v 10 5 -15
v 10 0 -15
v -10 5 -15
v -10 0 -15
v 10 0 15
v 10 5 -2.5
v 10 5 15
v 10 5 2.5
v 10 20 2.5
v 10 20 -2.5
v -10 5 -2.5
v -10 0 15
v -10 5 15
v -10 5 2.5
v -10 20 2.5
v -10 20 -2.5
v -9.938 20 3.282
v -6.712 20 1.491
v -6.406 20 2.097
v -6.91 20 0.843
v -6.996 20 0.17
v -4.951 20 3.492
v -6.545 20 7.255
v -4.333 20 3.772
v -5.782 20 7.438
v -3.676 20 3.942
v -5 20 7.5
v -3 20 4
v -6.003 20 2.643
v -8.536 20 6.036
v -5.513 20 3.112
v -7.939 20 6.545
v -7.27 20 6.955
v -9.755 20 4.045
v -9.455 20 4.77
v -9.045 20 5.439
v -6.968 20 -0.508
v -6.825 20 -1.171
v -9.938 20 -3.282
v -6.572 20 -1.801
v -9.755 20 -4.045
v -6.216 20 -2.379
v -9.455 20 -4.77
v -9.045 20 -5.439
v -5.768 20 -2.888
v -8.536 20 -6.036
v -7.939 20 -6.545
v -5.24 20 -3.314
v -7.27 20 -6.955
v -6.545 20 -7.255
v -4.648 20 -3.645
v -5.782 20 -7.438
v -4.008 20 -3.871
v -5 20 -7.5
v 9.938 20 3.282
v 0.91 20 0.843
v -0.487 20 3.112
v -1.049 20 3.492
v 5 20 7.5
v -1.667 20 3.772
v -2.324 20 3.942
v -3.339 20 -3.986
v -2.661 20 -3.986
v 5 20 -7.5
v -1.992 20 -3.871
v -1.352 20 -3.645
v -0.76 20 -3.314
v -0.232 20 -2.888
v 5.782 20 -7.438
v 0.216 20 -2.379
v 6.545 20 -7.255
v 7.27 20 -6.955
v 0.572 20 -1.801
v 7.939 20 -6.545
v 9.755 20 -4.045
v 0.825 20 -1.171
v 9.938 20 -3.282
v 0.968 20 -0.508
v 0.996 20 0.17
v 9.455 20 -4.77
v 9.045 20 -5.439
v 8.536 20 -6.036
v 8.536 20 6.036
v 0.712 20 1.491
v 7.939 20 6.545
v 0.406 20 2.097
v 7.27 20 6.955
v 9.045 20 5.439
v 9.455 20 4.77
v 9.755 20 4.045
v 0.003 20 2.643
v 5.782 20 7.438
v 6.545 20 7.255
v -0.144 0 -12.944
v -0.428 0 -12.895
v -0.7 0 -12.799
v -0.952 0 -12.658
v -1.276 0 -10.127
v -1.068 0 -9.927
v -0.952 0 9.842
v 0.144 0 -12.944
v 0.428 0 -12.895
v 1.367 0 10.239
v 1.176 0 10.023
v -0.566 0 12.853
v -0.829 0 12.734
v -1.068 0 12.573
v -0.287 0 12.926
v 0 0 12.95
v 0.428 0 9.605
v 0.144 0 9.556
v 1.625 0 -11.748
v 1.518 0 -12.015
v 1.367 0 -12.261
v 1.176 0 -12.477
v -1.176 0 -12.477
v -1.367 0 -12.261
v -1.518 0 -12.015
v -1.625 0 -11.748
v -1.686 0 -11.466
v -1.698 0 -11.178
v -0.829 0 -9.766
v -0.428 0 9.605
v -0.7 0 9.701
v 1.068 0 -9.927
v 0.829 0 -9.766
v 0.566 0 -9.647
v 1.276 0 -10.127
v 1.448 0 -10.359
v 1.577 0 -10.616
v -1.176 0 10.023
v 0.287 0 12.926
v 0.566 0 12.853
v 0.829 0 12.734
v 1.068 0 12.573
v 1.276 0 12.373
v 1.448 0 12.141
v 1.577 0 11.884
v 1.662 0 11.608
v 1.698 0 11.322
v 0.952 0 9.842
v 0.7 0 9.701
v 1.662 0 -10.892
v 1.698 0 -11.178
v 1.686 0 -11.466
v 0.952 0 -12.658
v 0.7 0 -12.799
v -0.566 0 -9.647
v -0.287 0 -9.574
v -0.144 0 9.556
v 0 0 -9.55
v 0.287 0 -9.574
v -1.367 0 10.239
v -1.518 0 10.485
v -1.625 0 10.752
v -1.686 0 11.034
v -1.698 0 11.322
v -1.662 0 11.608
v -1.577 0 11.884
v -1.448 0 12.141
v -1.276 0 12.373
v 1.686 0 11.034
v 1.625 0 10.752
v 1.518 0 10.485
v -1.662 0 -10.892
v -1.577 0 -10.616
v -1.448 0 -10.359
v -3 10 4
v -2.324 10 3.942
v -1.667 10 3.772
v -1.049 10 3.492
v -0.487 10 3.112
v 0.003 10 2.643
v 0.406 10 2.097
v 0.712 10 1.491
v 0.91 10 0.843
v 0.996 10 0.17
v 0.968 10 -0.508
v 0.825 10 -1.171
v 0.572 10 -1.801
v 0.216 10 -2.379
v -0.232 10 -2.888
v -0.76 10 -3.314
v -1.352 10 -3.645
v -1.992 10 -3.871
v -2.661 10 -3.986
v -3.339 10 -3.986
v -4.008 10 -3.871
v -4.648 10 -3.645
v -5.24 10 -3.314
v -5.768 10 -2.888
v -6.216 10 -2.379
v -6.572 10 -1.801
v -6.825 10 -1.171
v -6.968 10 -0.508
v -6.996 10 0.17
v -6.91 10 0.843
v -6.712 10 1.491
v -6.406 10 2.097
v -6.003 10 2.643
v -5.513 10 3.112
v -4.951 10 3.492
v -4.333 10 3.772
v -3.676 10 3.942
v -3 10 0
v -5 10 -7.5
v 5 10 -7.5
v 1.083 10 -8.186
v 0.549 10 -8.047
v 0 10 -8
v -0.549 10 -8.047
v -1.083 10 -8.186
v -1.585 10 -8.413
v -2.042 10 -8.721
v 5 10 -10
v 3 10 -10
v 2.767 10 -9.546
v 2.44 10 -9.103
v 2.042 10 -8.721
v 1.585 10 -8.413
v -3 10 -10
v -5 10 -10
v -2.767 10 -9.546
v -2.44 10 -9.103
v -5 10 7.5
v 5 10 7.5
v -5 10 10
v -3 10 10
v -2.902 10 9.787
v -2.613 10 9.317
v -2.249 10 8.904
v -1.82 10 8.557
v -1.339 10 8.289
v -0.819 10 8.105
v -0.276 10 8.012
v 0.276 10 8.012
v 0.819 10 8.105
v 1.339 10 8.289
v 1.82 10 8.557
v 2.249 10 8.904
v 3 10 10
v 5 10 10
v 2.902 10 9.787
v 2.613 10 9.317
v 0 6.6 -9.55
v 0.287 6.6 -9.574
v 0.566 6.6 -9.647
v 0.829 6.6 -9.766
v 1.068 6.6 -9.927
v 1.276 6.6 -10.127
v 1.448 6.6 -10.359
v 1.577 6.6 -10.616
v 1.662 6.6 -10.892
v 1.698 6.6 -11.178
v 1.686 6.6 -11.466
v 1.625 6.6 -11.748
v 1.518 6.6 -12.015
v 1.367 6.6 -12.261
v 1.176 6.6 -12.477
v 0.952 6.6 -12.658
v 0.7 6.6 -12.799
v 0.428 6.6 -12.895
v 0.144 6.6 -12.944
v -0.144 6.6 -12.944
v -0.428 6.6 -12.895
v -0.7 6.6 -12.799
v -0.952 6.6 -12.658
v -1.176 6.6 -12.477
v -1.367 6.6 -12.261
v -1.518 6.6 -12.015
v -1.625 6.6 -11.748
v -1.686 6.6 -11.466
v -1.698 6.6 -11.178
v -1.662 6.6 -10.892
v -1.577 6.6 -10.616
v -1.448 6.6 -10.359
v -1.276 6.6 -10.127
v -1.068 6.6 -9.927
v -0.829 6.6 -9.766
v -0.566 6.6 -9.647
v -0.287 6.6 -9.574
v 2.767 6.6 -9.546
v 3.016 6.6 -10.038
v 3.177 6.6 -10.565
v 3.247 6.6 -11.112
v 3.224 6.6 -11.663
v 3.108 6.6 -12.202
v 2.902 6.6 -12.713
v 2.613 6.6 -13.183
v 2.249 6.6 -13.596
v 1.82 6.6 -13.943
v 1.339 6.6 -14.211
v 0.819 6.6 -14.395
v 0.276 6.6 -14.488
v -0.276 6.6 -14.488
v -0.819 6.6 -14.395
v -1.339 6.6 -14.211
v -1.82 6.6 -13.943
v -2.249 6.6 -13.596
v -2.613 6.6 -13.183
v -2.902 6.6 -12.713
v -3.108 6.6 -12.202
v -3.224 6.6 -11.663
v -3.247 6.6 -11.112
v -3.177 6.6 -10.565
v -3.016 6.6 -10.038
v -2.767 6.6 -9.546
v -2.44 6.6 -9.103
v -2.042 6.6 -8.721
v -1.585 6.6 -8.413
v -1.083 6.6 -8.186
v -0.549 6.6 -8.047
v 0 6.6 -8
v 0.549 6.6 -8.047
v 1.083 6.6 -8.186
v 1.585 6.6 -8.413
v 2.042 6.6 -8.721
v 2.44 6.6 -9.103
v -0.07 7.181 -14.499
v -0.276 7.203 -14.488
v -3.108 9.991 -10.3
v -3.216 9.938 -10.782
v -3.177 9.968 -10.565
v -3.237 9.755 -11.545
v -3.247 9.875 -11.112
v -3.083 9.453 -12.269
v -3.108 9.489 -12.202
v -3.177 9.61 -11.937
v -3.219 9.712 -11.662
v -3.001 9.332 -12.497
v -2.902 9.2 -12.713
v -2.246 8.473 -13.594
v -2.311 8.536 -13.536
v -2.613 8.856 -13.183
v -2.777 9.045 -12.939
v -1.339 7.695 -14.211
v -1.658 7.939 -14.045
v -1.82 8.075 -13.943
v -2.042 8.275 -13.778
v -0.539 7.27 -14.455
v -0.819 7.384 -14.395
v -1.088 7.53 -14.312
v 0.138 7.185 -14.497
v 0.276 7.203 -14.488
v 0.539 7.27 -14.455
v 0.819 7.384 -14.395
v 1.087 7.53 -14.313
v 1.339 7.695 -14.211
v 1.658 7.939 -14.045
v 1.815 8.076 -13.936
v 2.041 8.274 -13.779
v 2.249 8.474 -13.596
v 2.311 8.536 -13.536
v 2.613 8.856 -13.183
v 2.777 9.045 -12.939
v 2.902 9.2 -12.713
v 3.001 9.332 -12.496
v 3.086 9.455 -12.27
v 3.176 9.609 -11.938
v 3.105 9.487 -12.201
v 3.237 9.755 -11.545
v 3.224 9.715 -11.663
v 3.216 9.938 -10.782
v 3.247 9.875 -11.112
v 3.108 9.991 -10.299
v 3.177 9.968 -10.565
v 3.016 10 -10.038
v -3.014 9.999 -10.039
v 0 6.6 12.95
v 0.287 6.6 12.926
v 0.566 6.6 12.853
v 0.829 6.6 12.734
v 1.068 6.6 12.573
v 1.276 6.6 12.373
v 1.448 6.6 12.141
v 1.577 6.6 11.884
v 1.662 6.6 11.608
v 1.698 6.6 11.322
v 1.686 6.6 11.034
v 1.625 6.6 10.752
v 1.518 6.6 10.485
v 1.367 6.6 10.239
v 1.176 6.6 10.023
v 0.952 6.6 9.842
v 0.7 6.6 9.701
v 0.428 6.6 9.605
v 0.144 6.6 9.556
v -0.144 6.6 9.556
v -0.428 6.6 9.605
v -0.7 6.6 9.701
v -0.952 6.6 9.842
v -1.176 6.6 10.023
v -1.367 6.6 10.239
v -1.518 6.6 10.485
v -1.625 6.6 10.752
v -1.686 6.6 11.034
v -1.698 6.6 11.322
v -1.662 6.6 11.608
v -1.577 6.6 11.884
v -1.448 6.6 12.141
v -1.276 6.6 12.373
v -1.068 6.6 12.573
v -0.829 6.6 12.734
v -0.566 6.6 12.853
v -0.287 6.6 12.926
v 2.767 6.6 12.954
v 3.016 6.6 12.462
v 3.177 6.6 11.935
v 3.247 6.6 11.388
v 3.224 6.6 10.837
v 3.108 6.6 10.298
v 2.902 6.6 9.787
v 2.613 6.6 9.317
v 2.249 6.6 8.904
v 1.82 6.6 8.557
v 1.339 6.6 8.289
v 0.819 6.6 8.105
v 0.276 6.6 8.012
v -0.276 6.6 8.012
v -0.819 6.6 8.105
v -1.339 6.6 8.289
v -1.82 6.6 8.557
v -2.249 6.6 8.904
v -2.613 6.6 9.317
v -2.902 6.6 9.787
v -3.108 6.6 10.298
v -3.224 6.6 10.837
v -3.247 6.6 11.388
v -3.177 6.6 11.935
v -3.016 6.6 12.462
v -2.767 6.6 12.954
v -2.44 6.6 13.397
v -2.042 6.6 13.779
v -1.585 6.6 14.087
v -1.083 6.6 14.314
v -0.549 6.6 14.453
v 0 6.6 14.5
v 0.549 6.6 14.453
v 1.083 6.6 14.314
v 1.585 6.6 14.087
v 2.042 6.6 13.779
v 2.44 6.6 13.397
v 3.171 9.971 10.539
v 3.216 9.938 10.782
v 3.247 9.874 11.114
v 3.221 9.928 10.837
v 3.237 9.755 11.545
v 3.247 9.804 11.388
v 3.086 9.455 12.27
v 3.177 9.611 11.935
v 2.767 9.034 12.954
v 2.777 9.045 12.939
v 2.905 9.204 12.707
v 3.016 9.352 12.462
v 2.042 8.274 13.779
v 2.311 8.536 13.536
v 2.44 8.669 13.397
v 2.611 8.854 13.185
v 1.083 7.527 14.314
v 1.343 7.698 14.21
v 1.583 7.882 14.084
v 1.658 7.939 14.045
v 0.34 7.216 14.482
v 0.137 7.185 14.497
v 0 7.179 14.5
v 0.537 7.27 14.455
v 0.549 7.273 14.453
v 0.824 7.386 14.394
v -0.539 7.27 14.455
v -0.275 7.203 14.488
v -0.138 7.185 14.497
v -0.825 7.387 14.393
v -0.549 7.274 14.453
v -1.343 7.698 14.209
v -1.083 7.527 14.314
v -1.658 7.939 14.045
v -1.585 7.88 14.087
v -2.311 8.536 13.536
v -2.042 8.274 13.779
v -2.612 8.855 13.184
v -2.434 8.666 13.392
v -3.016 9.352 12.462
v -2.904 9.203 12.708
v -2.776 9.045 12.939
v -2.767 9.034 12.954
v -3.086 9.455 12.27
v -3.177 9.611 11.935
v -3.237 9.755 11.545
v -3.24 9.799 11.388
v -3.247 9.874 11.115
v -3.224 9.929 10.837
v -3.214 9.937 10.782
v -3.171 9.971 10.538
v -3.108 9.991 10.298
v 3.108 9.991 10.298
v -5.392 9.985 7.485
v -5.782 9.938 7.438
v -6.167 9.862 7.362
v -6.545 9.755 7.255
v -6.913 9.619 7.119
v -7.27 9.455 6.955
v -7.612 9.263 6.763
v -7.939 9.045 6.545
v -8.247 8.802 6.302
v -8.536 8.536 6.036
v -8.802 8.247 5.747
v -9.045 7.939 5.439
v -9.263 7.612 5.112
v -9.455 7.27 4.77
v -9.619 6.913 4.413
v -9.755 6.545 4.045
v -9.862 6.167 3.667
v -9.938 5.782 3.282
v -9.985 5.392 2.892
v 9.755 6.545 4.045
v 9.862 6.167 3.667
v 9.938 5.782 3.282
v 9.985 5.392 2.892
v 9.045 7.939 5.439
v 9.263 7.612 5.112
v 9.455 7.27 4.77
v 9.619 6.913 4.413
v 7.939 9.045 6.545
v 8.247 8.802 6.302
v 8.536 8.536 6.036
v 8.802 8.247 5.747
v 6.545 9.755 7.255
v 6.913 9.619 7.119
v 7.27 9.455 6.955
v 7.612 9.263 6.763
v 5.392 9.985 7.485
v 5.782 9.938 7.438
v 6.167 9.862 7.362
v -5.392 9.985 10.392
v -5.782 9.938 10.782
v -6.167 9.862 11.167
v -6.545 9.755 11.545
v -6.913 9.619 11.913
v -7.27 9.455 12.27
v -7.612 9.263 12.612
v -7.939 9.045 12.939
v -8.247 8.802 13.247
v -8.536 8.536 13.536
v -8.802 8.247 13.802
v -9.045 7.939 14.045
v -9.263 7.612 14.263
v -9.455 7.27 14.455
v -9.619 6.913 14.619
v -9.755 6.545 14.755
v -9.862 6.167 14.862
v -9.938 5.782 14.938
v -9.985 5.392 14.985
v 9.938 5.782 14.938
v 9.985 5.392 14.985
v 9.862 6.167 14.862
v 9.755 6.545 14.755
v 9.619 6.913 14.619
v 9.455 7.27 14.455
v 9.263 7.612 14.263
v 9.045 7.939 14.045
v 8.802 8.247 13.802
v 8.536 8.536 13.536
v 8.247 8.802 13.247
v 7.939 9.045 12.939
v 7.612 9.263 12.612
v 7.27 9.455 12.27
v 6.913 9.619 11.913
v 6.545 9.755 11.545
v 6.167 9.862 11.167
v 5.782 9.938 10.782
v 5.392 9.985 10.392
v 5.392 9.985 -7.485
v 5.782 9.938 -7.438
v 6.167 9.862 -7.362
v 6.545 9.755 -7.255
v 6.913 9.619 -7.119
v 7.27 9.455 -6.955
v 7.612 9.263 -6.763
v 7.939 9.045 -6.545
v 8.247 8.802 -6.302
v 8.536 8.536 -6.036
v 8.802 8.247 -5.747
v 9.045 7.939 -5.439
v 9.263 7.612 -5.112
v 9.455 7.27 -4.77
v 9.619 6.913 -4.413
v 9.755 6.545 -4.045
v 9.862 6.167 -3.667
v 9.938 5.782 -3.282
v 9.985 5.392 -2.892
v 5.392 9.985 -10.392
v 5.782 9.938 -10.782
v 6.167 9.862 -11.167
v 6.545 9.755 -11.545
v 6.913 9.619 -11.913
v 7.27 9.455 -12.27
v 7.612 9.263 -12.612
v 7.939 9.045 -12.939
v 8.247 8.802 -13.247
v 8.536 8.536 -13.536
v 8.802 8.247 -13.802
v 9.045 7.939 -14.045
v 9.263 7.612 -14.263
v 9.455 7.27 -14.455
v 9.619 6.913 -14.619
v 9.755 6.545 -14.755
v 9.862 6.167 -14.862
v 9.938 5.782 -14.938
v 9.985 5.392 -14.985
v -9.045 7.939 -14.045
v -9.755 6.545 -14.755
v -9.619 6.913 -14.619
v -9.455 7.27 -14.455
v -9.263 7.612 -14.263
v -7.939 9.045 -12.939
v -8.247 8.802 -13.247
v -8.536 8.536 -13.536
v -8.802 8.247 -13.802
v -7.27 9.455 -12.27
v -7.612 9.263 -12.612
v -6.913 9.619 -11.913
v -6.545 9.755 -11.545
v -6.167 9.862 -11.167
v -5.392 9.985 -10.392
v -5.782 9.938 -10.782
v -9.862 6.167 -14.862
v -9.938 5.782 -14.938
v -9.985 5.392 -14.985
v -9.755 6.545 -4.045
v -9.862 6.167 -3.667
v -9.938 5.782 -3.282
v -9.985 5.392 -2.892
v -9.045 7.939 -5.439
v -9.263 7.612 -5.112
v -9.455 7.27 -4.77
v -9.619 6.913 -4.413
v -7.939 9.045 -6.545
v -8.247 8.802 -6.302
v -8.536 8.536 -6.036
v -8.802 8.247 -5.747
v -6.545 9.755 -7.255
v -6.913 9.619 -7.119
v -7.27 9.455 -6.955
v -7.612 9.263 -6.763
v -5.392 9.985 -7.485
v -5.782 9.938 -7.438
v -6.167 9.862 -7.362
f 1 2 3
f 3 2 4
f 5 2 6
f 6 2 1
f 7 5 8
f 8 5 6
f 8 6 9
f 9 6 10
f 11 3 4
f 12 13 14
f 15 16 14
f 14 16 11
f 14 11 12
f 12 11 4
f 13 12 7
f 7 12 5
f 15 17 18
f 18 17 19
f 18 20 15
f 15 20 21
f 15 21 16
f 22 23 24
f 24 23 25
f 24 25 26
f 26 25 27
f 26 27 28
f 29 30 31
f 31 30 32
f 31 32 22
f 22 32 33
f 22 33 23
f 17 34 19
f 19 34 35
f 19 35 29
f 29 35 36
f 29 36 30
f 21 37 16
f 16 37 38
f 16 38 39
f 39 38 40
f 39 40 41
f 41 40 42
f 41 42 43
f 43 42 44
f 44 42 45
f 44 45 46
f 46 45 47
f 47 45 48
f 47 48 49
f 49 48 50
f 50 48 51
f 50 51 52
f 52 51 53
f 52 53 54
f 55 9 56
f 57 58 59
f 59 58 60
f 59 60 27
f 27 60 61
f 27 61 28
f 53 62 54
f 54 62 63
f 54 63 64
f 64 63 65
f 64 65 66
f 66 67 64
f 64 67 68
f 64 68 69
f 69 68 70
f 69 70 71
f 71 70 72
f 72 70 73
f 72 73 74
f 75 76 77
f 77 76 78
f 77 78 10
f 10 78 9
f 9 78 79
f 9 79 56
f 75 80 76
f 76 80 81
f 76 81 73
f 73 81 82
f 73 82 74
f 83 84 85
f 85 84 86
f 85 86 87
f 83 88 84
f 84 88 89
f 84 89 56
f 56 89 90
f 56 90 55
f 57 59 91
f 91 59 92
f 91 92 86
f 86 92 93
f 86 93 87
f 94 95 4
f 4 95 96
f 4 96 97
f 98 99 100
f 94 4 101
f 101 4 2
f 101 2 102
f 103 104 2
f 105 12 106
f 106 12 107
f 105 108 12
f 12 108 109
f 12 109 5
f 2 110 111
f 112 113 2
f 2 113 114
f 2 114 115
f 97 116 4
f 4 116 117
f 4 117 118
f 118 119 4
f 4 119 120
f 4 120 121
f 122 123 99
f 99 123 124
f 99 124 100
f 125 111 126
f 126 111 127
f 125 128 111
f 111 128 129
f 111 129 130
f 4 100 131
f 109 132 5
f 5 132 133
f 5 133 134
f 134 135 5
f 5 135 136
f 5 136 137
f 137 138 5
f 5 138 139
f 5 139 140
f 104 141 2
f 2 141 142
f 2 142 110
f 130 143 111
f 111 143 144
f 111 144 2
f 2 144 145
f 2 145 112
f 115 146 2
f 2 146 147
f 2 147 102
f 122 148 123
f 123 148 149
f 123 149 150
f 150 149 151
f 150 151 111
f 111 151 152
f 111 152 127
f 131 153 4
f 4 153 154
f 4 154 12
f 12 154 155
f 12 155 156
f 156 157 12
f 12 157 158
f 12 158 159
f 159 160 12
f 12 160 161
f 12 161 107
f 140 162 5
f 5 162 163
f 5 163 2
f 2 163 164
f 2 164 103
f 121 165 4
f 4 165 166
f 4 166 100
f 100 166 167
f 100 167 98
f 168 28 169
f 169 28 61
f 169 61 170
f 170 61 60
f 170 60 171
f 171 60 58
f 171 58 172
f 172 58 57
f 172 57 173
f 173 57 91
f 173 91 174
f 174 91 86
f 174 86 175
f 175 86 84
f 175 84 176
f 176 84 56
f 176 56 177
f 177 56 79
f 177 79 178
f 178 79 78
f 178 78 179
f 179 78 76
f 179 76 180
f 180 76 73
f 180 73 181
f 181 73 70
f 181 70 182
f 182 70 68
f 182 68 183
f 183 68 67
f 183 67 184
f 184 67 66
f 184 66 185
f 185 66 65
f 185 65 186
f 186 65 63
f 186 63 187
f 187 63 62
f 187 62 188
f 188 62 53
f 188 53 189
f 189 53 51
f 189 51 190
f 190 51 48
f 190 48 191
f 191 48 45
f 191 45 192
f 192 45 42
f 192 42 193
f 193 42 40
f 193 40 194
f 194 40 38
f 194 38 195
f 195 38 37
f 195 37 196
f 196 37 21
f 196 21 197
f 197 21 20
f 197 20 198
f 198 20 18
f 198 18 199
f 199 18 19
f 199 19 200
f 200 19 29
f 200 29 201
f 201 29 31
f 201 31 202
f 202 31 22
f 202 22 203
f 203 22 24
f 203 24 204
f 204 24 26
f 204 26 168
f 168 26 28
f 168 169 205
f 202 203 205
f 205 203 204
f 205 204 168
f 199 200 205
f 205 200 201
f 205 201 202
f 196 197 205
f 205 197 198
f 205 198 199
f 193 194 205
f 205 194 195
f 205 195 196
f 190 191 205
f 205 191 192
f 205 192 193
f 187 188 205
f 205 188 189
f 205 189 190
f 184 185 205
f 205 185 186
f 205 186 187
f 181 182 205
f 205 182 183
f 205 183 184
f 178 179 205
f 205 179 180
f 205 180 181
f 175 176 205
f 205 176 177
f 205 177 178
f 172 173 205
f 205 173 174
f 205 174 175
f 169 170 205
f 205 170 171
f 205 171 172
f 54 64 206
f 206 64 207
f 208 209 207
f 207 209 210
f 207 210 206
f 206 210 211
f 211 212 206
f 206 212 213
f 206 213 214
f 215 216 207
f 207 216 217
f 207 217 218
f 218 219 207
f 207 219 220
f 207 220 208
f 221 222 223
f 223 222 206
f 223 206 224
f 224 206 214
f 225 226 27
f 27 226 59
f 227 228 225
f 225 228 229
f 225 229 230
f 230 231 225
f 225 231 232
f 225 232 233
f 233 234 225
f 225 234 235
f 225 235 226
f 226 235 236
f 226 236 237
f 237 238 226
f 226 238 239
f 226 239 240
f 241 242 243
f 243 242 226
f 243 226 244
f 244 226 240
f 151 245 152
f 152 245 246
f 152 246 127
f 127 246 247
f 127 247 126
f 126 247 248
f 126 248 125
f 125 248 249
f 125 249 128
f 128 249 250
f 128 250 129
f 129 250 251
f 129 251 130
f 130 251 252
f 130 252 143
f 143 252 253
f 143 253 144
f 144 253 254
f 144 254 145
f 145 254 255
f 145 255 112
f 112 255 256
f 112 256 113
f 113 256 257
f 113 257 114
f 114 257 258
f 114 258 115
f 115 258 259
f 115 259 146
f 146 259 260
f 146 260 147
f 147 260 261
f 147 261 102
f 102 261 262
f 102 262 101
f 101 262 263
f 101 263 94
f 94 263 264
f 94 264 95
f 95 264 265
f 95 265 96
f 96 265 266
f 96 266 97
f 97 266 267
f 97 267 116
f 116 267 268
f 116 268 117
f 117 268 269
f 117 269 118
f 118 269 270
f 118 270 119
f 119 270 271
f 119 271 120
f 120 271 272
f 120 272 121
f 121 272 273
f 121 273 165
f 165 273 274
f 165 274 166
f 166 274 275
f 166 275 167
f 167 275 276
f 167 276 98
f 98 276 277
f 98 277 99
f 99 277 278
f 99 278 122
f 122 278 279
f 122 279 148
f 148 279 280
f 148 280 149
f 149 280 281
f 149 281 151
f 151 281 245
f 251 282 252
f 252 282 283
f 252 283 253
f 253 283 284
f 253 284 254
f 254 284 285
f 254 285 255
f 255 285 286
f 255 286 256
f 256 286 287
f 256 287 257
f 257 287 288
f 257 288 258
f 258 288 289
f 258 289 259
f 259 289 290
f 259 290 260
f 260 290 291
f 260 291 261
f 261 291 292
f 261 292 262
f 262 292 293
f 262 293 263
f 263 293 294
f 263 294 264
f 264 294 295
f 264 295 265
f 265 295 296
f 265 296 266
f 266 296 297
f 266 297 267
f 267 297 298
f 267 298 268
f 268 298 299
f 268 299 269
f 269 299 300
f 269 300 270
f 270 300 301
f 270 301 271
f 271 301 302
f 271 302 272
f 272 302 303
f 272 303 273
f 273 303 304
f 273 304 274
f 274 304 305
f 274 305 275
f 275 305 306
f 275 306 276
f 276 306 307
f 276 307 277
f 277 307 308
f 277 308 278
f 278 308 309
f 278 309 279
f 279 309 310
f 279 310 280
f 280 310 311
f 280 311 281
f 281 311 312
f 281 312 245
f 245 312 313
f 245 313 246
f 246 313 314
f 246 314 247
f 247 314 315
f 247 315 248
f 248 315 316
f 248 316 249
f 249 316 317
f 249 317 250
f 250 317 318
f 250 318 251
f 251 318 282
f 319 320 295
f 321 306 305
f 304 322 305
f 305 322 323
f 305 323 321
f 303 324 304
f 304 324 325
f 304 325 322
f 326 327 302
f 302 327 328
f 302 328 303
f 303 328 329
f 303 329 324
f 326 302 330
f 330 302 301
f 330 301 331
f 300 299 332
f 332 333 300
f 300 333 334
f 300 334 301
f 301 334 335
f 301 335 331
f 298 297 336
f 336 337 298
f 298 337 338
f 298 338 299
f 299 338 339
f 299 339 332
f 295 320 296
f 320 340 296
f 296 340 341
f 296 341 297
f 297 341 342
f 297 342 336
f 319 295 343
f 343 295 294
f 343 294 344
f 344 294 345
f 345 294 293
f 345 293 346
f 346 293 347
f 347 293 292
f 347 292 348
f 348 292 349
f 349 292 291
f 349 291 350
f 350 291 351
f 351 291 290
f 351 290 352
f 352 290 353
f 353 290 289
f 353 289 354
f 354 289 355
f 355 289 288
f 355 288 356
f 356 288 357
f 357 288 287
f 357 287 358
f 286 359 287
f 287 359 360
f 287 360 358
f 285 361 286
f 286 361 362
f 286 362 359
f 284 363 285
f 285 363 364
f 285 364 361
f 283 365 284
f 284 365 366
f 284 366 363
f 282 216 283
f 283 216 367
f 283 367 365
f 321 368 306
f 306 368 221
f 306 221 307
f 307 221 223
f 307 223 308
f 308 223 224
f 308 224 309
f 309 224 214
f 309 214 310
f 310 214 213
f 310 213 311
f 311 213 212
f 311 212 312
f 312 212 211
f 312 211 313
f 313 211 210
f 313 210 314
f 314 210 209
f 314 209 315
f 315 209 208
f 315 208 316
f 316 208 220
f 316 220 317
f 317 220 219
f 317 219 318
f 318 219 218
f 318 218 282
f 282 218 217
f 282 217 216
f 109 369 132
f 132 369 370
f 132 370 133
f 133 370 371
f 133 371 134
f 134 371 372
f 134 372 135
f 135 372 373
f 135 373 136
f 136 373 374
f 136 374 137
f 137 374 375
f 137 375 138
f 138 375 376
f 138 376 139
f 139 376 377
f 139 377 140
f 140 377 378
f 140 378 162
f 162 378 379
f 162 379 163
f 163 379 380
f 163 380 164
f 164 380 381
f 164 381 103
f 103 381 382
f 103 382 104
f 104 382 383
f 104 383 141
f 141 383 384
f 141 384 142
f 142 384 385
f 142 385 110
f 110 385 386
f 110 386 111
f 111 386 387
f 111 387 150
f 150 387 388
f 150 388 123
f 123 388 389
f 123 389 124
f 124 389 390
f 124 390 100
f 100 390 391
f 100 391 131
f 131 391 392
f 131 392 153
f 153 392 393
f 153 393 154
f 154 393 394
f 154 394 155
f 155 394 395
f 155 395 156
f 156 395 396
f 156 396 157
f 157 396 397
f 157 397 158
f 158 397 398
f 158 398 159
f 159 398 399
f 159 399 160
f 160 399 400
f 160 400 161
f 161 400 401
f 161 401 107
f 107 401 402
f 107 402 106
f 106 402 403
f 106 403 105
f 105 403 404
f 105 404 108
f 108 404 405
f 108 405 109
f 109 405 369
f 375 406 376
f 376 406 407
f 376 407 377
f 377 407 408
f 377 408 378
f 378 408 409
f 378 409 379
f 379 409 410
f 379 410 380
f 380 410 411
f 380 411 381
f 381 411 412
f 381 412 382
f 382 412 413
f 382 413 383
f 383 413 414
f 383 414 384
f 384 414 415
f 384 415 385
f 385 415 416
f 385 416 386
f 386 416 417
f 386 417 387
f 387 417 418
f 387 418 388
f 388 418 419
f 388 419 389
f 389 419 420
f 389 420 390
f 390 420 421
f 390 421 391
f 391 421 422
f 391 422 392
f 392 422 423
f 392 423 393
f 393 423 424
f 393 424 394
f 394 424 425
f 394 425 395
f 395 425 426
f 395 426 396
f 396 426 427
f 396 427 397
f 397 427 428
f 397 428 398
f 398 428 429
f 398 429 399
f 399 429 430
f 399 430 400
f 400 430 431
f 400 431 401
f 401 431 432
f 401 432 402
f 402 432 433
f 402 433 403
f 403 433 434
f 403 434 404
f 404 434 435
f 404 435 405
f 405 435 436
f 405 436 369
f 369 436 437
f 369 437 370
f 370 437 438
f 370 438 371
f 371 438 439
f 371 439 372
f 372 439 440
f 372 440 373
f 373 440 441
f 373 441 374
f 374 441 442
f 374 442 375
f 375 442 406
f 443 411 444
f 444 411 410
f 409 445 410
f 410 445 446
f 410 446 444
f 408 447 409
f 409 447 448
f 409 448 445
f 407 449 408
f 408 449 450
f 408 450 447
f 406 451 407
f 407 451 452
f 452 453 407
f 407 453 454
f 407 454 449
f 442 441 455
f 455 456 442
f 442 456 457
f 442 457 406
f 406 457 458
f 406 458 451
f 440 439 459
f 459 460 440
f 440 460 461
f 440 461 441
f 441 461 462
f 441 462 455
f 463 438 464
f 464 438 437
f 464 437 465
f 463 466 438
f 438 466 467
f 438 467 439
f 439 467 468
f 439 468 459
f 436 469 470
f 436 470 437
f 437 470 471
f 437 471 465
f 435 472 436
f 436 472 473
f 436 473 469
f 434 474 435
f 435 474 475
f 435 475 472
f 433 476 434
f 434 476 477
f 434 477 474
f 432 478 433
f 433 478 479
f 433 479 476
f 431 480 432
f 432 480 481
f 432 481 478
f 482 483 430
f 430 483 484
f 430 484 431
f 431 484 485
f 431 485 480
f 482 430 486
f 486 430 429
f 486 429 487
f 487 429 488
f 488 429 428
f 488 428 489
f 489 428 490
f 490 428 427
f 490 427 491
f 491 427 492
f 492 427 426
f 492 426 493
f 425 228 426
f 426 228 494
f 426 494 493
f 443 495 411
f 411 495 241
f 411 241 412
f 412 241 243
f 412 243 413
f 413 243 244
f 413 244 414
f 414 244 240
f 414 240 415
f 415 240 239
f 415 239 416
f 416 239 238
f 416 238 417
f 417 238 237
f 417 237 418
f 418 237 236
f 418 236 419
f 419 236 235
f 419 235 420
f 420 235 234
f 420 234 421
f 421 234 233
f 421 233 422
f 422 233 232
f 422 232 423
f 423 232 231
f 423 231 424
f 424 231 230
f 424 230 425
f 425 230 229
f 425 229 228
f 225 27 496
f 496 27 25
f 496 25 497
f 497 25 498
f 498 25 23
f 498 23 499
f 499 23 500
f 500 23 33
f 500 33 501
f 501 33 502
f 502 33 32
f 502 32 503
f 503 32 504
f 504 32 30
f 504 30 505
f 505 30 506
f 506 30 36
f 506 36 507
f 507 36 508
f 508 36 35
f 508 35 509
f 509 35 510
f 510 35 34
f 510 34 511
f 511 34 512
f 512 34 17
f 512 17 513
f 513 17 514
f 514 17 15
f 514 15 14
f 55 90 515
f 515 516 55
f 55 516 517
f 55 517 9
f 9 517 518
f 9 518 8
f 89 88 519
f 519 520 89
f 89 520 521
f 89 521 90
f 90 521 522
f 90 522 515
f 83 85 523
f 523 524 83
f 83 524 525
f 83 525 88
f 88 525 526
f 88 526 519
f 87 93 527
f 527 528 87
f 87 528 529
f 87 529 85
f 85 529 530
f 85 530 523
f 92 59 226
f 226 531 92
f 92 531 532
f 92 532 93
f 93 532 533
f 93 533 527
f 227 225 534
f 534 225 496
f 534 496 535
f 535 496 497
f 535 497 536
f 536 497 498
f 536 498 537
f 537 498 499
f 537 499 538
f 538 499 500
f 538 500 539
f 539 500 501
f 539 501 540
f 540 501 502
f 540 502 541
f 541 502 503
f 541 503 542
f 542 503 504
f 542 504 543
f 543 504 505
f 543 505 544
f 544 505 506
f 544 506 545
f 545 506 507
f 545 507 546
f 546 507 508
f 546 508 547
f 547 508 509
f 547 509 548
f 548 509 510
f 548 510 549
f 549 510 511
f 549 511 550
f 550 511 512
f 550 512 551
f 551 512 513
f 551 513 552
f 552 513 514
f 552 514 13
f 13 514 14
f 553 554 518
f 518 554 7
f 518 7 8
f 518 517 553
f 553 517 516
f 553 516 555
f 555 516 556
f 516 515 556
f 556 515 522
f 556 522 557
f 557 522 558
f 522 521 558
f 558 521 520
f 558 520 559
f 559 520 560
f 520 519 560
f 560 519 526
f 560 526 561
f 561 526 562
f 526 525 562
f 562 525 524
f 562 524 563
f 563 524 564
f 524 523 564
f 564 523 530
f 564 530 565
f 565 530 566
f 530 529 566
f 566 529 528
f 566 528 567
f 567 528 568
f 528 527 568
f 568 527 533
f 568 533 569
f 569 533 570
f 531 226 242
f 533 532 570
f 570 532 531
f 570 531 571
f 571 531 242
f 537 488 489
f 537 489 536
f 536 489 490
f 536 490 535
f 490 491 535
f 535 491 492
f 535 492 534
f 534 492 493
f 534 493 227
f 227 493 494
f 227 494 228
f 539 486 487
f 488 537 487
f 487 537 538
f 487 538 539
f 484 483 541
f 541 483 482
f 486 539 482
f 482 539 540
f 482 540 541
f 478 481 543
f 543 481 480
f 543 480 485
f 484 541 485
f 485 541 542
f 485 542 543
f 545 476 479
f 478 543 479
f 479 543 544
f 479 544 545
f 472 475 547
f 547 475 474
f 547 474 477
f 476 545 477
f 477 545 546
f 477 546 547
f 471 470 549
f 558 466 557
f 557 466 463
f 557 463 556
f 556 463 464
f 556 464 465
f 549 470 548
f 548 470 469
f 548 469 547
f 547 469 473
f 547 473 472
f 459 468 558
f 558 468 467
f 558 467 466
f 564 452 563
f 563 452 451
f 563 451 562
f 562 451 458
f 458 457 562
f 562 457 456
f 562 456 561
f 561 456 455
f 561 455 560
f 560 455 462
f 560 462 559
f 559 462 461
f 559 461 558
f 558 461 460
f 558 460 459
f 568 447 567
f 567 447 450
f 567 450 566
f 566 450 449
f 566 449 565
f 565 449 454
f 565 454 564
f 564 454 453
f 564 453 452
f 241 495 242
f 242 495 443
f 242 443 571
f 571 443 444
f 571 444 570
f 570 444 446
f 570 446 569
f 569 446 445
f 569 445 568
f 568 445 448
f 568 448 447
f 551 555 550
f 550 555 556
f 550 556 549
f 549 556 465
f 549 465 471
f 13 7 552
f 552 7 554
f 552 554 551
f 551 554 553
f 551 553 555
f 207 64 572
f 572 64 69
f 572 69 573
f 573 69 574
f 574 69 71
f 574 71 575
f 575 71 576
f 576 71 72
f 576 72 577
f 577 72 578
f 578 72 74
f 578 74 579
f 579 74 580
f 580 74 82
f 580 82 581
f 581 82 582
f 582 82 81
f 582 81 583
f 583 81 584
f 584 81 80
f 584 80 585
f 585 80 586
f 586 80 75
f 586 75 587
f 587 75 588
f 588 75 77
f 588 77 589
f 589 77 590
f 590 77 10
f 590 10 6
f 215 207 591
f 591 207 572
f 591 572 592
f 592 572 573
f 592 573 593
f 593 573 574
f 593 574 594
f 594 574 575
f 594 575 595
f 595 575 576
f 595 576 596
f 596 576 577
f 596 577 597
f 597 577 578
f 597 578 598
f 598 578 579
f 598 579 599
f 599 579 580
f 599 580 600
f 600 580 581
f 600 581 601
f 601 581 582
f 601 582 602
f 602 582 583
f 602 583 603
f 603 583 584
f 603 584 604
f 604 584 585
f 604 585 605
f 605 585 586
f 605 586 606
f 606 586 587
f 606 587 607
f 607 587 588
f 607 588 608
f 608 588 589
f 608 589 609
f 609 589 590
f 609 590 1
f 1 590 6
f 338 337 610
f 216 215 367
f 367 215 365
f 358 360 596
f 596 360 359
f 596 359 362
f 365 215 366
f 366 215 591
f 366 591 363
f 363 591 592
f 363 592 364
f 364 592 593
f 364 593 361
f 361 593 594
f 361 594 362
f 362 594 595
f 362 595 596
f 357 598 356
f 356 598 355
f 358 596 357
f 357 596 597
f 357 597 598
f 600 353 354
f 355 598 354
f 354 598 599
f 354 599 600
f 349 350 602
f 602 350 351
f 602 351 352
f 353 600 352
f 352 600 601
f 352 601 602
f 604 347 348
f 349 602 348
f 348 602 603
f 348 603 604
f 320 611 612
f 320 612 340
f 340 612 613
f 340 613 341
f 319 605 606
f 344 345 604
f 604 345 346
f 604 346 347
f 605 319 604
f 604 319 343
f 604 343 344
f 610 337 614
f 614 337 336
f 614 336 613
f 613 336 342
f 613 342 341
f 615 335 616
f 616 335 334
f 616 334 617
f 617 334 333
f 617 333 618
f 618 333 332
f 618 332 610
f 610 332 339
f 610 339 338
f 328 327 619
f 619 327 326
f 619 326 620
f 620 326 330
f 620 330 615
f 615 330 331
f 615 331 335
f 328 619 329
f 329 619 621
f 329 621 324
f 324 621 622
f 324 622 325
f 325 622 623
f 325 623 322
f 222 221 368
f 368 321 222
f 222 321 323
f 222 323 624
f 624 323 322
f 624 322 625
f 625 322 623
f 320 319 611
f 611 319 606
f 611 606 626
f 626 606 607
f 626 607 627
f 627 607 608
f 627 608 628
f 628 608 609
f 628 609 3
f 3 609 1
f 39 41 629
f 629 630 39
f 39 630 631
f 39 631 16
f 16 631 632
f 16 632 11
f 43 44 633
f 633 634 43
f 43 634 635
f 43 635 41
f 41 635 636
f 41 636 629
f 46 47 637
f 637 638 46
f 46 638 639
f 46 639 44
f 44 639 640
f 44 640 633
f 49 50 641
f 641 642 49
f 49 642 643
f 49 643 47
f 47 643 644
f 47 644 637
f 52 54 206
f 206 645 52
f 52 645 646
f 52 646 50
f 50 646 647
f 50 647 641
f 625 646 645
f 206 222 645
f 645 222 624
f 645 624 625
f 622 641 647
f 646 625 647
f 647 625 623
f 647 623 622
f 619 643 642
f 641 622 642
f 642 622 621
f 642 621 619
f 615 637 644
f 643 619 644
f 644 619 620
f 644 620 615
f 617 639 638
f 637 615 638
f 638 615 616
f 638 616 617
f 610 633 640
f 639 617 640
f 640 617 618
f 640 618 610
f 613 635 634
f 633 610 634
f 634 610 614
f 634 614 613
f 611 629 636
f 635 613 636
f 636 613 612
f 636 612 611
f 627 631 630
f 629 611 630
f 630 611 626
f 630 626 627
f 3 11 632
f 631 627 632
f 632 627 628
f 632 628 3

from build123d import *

# Parameters (mm, degrees)
SKETCH1_W                                           = 20
SKETCH1_H                                           = 30
BOSS_EXTRUDE1_DEPTH                                 = 20
SKETCH2_R                                           = 4
CUT_EXTRUDE1_DEPTH                                  = 10
SKETCH3_W                                           = 20
SKETCH3_H                                           = 7.5
CUT_EXTRUDE2_DEPTH                                  = 10
CBORE_FOR_M3_HEX_SOCKET_HEAD_CAP_SCREW1_D           = 3.4
CBORE_FOR_M3_HEX_SOCKET_HEAD_CAP_SCREW1_CBORE_D     = 6.5
CBORE_FOR_M3_HEX_SOCKET_HEAD_CAP_SCREW1_CBORE_DEPTH = 3.4
FILLET2_R                                           = 5


with BuildPart() as part:
    # Sketch1 → Boss-Extrude1 (new body)
    with BuildSketch(Plane(origin=(0, 0, 0), x_dir=(1, 0, 0), z_dir=(0, 1, 0))):
        Rectangle(SKETCH1_W, SKETCH1_H)
    extrude(amount=BOSS_EXTRUDE1_DEPTH)

    # Sketch2 → Cut-Extrude1 (cut)
    with BuildSketch(Plane(origin=(0, 20, 0), x_dir=(1, 0, 0), z_dir=(0, 1, 0))):
        with Locations(Location((-3, 0, 0), (0, 0, 270))):
            Circle(SKETCH2_R)
    extrude(amount=-CUT_EXTRUDE1_DEPTH, mode=Mode.SUBTRACT)

    # Sketch3 → Cut-Extrude2 (cut)
    with BuildSketch(Plane(origin=(0, 20, 0), x_dir=(1, 0, 0), z_dir=(0, 1, 0))):
        with Locations((0, -11.25)):
            Rectangle(SKETCH3_W, SKETCH3_H)
        with Locations((0, 11.25)):
            Rectangle(SKETCH3_W, SKETCH3_H)
    extrude(amount=-CUT_EXTRUDE2_DEPTH, mode=Mode.SUBTRACT)

    # CBORE for M3 Hex Socket Head Cap Screw1 (through all)
    with Locations(Plane(origin=(0, 10, 0), x_dir=(1, 0, 0), z_dir=(0, 1, 0))):
        with Locations((0, -11.25), (0, 11.25)):
            CounterBoreHole(CBORE_FOR_M3_HEX_SOCKET_HEAD_CAP_SCREW1_D / 2, CBORE_FOR_M3_HEX_SOCKET_HEAD_CAP_SCREW1_CBORE_D / 2, CBORE_FOR_M3_HEX_SOCKET_HEAD_CAP_SCREW1_CBORE_DEPTH)

    # Fillet2
    # the kernel refuses this fillet: 5 mm, written as the material it takes off along each edge
    with BuildSketch(Plane(origin=(-10, 10, 7.5), x_dir=(1, 0, 0), z_dir=(0, 0, 1)), Plane(origin=(-10, 10, -7.5), x_dir=(0, -1, 0), z_dir=(0, 0, -1)), Plane(origin=(10, 10, -15), x_dir=(0, -1, 0), z_dir=(0, 0, 1))) as fillet2_piece_1:
        with BuildLine():
            CenterArc((FILLET2_R, -FILLET2_R), FILLET2_R, 90, 90)
            Line((0, -FILLET2_R), (-FILLET2_R * 0.02, -FILLET2_R))
            Line((-FILLET2_R * 0.02, -FILLET2_R), (-FILLET2_R * 0.02, FILLET2_R * 0.02))
            Line((-FILLET2_R * 0.02, FILLET2_R * 0.02), (FILLET2_R, FILLET2_R * 0.02))
            Line((FILLET2_R, FILLET2_R * 0.02), (FILLET2_R, 0))
        make_face()
    extrude(amount=7.5, mode=Mode.SUBTRACT)
    with BuildSketch(Plane(origin=(-10, 20, 7.5), x_dir=(0, 0, -1), z_dir=(0, -1, 0)), Plane(origin=(10, 20, -7.5), x_dir=(0, 0, 1), z_dir=(0, -1, 0))) as fillet2_piece_2:
        with BuildLine():
            CenterArc((FILLET2_R, FILLET2_R), FILLET2_R, 180, 90)
            Line((0, FILLET2_R), (-FILLET2_R * 0.02, FILLET2_R))
            Line((-FILLET2_R * 0.02, FILLET2_R), (-FILLET2_R * 0.02, -FILLET2_R * 0.02))
            Line((-FILLET2_R * 0.02, -FILLET2_R * 0.02), (FILLET2_R, -FILLET2_R * 0.02))
            Line((FILLET2_R, -FILLET2_R * 0.02), (FILLET2_R, 0))
        make_face()
    extrude(amount=10, mode=Mode.SUBTRACT)
    with BuildSketch(Plane(origin=(10, 10, 15), x_dir=(0, -1, 0), z_dir=(0, 0, -1))) as fillet2_piece_3:
        with BuildLine():
            CenterArc((FILLET2_R, FILLET2_R), FILLET2_R, 180, 90)
            Line((0, FILLET2_R), (-FILLET2_R * 0.02, FILLET2_R))
            Line((-FILLET2_R * 0.02, FILLET2_R), (-FILLET2_R * 0.02, -FILLET2_R * 0.02))
            Line((-FILLET2_R * 0.02, -FILLET2_R * 0.02), (FILLET2_R, -FILLET2_R * 0.02))
            Line((FILLET2_R, -FILLET2_R * 0.02), (FILLET2_R, 0))
        make_face()
    extrude(amount=7.5, mode=Mode.SUBTRACT)
    with BuildSketch(Plane(origin=(10, 20, 7.5), x_dir=(0, 0, -1), z_dir=(0, -1, 0)), Plane(origin=(-10, 20, -7.5), x_dir=(0, 0, 1), z_dir=(0, -1, 0))) as fillet2_piece_4:
        with BuildLine():
            CenterArc((FILLET2_R, -FILLET2_R), FILLET2_R, 90, 90)
            Line((0, -FILLET2_R), (-FILLET2_R * 0.02, -FILLET2_R))
            Line((-FILLET2_R * 0.02, -FILLET2_R), (-FILLET2_R * 0.02, FILLET2_R * 0.02))
            Line((-FILLET2_R * 0.02, FILLET2_R * 0.02), (FILLET2_R, FILLET2_R * 0.02))
            Line((FILLET2_R, FILLET2_R * 0.02), (FILLET2_R, 0))
        make_face()
    extrude(amount=10, mode=Mode.SUBTRACT)
    with BuildSketch(Plane(origin=(-10, 10, 15), x_dir=(0, -1, 0), z_dir=(1, 0, 0))) as fillet2_piece_5:
        with BuildLine():
            CenterArc((FILLET2_R, FILLET2_R), FILLET2_R, 180, 90)
            Line((0, FILLET2_R), (-FILLET2_R * 0.02, FILLET2_R))
            Line((-FILLET2_R * 0.02, FILLET2_R), (-FILLET2_R * 0.02, -FILLET2_R * 0.02))
            Line((-FILLET2_R * 0.02, -FILLET2_R * 0.02), (FILLET2_R, -FILLET2_R * 0.02))
            Line((FILLET2_R, -FILLET2_R * 0.02), (FILLET2_R, 0))
        make_face()
    extrude(amount=20, mode=Mode.SUBTRACT)
    with BuildSketch(Plane(origin=(-10, 10, -15), x_dir=(0, -1, 0), z_dir=(1, 0, 0))) as fillet2_piece_6:
        with BuildLine():
            CenterArc((FILLET2_R, -FILLET2_R), FILLET2_R, 90, 90)
            Line((0, -FILLET2_R), (-FILLET2_R * 0.02, -FILLET2_R))
            Line((-FILLET2_R * 0.02, -FILLET2_R), (-FILLET2_R * 0.02, FILLET2_R * 0.02))
            Line((-FILLET2_R * 0.02, FILLET2_R * 0.02), (FILLET2_R, FILLET2_R * 0.02))
            Line((FILLET2_R, FILLET2_R * 0.02), (FILLET2_R, 0))
        make_face()
    extrude(amount=20, mode=Mode.SUBTRACT)
    with BuildSketch(Plane(origin=(-10, 10, -5), x_dir=(1, 0, 0), z_dir=(0, 0, 1))) as fillet2_piece_7a_section:
        with BuildLine():
            CenterArc((FILLET2_R, -FILLET2_R), FILLET2_R, 90, 90)
            Line((0, -FILLET2_R), (-FILLET2_R * 0.02, -FILLET2_R))
            Line((-FILLET2_R * 0.02, -FILLET2_R), (-FILLET2_R * 0.02, FILLET2_R * 0.02))
            Line((-FILLET2_R * 0.02, FILLET2_R * 0.02), (FILLET2_R, FILLET2_R * 0.02))
            Line((FILLET2_R, FILLET2_R * 0.02), (FILLET2_R, 0))
        make_face()
    fillet2_piece_7a = extrude(amount=20, mode=Mode.PRIVATE)
    fillet2_piece_7a = split(fillet2_piece_7a, bisect_by=Plane(origin=(-8.868024429, 8.868024429, 7.5), z_dir=(0, 0, -1)), keep=Keep.TOP, mode=Mode.PRIVATE)
    with BuildSketch(Plane(origin=(-10, 20, 7.5), x_dir=(0, 0, -1), z_dir=(0, -1, 0))) as fillet2_piece_7b_section:
        with BuildLine():
            CenterArc((FILLET2_R, FILLET2_R), FILLET2_R, 180, 90)
            Line((0, FILLET2_R), (-FILLET2_R * 0.02, FILLET2_R))
            Line((-FILLET2_R * 0.02, FILLET2_R), (-FILLET2_R * 0.02, -FILLET2_R * 0.02))
            Line((-FILLET2_R * 0.02, -FILLET2_R * 0.02), (FILLET2_R, -FILLET2_R * 0.02))
            Line((FILLET2_R, -FILLET2_R * 0.02), (FILLET2_R, 0))
        make_face()
    fillet2_piece_7b = extrude(amount=22.5, mode=Mode.PRIVATE)
    fillet2_piece_7b = split(fillet2_piece_7b, bisect_by=Plane(origin=(-8.868024429, 10, 6.368024429), z_dir=(0, -1, 0)), keep=Keep.TOP, mode=Mode.PRIVATE)
    fillet2_piece_7 = fillet2_piece_7a & fillet2_piece_7b
    add(fillet2_piece_7, mode=Mode.SUBTRACT)
    with BuildSketch(Plane(origin=(-22.5, 10, 15), x_dir=(0, -1, 0), z_dir=(1, 0, 0))) as fillet2_piece_8a_section:
        with BuildLine():
            CenterArc((FILLET2_R, FILLET2_R), FILLET2_R, 180, 90)
            Line((0, FILLET2_R), (-FILLET2_R * 0.02, FILLET2_R))
            Line((-FILLET2_R * 0.02, FILLET2_R), (-FILLET2_R * 0.02, -FILLET2_R * 0.02))
            Line((-FILLET2_R * 0.02, -FILLET2_R * 0.02), (FILLET2_R, -FILLET2_R * 0.02))
            Line((FILLET2_R, -FILLET2_R * 0.02), (FILLET2_R, 0))
        make_face()
    fillet2_piece_8a = extrude(amount=32.5, mode=Mode.PRIVATE)
    fillet2_piece_8a = split(fillet2_piece_8a, bisect_by=Plane(origin=(-10, 8.868024429, 13.868024429), z_dir=(-1, 0, 0)), keep=Keep.TOP, mode=Mode.PRIVATE)
    with BuildSketch(Plane(origin=(-10, 10, 7.5), x_dir=(1, 0, 0), z_dir=(0, 0, 1))) as fillet2_piece_8b_section:
        with BuildLine():
            CenterArc((FILLET2_R, -FILLET2_R), FILLET2_R, 90, 90)
            Line((0, -FILLET2_R), (-FILLET2_R * 0.02, -FILLET2_R))
            Line((-FILLET2_R * 0.02, -FILLET2_R), (-FILLET2_R * 0.02, FILLET2_R * 0.02))
            Line((-FILLET2_R * 0.02, FILLET2_R * 0.02), (FILLET2_R, FILLET2_R * 0.02))
            Line((FILLET2_R, FILLET2_R * 0.02), (FILLET2_R, 0))
        make_face()
    fillet2_piece_8b = extrude(amount=20, mode=Mode.PRIVATE)
    fillet2_piece_8b = split(fillet2_piece_8b, bisect_by=Plane(origin=(-8.868024429, 8.868024429, 15), z_dir=(0, 0, 1)), keep=Keep.TOP, mode=Mode.PRIVATE)
    fillet2_piece_8 = fillet2_piece_8a & fillet2_piece_8b
    add(fillet2_piece_8, mode=Mode.SUBTRACT)
    with BuildSketch(Plane(origin=(-10, 10, 15), x_dir=(0, -1, 0), z_dir=(1, 0, 0))) as fillet2_piece_9a_section:
        with BuildLine():
            CenterArc((FILLET2_R, FILLET2_R), FILLET2_R, 180, 90)
            Line((0, FILLET2_R), (-FILLET2_R * 0.02, FILLET2_R))
            Line((-FILLET2_R * 0.02, FILLET2_R), (-FILLET2_R * 0.02, -FILLET2_R * 0.02))
            Line((-FILLET2_R * 0.02, -FILLET2_R * 0.02), (FILLET2_R, -FILLET2_R * 0.02))
            Line((FILLET2_R, -FILLET2_R * 0.02), (FILLET2_R, 0))
        make_face()
    fillet2_piece_9a = extrude(amount=32.5, mode=Mode.PRIVATE)
    fillet2_piece_9a = split(fillet2_piece_9a, bisect_by=Plane(origin=(10, 8.868024429, 13.868024429), z_dir=(1, 0, 0)), keep=Keep.TOP, mode=Mode.PRIVATE)
    with BuildSketch(Plane(origin=(10, 10, 27.5), x_dir=(0, -1, 0), z_dir=(0, 0, -1))) as fillet2_piece_9b_section:
        with BuildLine():
            CenterArc((FILLET2_R, FILLET2_R), FILLET2_R, 180, 90)
            Line((0, FILLET2_R), (-FILLET2_R * 0.02, FILLET2_R))
            Line((-FILLET2_R * 0.02, FILLET2_R), (-FILLET2_R * 0.02, -FILLET2_R * 0.02))
            Line((-FILLET2_R * 0.02, -FILLET2_R * 0.02), (FILLET2_R, -FILLET2_R * 0.02))
            Line((FILLET2_R, -FILLET2_R * 0.02), (FILLET2_R, 0))
        make_face()
    fillet2_piece_9b = extrude(amount=20, mode=Mode.PRIVATE)
    fillet2_piece_9b = split(fillet2_piece_9b, bisect_by=Plane(origin=(8.868024429, 8.868024429, 15), z_dir=(0, 0, 1)), keep=Keep.TOP, mode=Mode.PRIVATE)
    fillet2_piece_9 = fillet2_piece_9a & fillet2_piece_9b
    add(fillet2_piece_9, mode=Mode.SUBTRACT)
    with BuildSketch(Plane(origin=(10, 20, 7.5), x_dir=(0, 0, -1), z_dir=(0, -1, 0))) as fillet2_piece_10a_section:
        with BuildLine():
            CenterArc((FILLET2_R, -FILLET2_R), FILLET2_R, 90, 90)
            Line((0, -FILLET2_R), (-FILLET2_R * 0.02, -FILLET2_R))
            Line((-FILLET2_R * 0.02, -FILLET2_R), (-FILLET2_R * 0.02, FILLET2_R * 0.02))
            Line((-FILLET2_R * 0.02, FILLET2_R * 0.02), (FILLET2_R, FILLET2_R * 0.02))
            Line((FILLET2_R, FILLET2_R * 0.02), (FILLET2_R, 0))
        make_face()
    fillet2_piece_10a = extrude(amount=22.5, mode=Mode.PRIVATE)
    fillet2_piece_10a = split(fillet2_piece_10a, bisect_by=Plane(origin=(8.868024429, 10, 6.368024429), z_dir=(0, -1, 0)), keep=Keep.TOP, mode=Mode.PRIVATE)
    with BuildSketch(Plane(origin=(10, 10, 15), x_dir=(0, -1, 0), z_dir=(0, 0, -1))) as fillet2_piece_10b_section:
        with BuildLine():
            CenterArc((FILLET2_R, FILLET2_R), FILLET2_R, 180, 90)
            Line((0, FILLET2_R), (-FILLET2_R * 0.02, FILLET2_R))
            Line((-FILLET2_R * 0.02, FILLET2_R), (-FILLET2_R * 0.02, -FILLET2_R * 0.02))
            Line((-FILLET2_R * 0.02, -FILLET2_R * 0.02), (FILLET2_R, -FILLET2_R * 0.02))
            Line((FILLET2_R, -FILLET2_R * 0.02), (FILLET2_R, 0))
        make_face()
    fillet2_piece_10b = extrude(amount=20, mode=Mode.PRIVATE)
    fillet2_piece_10b = split(fillet2_piece_10b, bisect_by=Plane(origin=(8.868024429, 8.868024429, 7.5), z_dir=(0, 0, -1)), keep=Keep.TOP, mode=Mode.PRIVATE)
    fillet2_piece_10 = fillet2_piece_10a & fillet2_piece_10b
    add(fillet2_piece_10, mode=Mode.SUBTRACT)
    with BuildSketch(Plane(origin=(-10, 20, -7.5), x_dir=(0, 0, 1), z_dir=(0, -1, 0))) as fillet2_piece_11a_section:
        with BuildLine():
            CenterArc((FILLET2_R, -FILLET2_R), FILLET2_R, 90, 90)
            Line((0, -FILLET2_R), (-FILLET2_R * 0.02, -FILLET2_R))
            Line((-FILLET2_R * 0.02, -FILLET2_R), (-FILLET2_R * 0.02, FILLET2_R * 0.02))
            Line((-FILLET2_R * 0.02, FILLET2_R * 0.02), (FILLET2_R, FILLET2_R * 0.02))
            Line((FILLET2_R, FILLET2_R * 0.02), (FILLET2_R, 0))
        make_face()
    fillet2_piece_11a = extrude(amount=22.5, mode=Mode.PRIVATE)
    fillet2_piece_11a = split(fillet2_piece_11a, bisect_by=Plane(origin=(-8.868024429, 10, -6.368024429), z_dir=(0, -1, 0)), keep=Keep.TOP, mode=Mode.PRIVATE)
    with BuildSketch(Plane(origin=(-10, 10, 5), x_dir=(0, -1, 0), z_dir=(0, 0, -1))) as fillet2_piece_11b_section:
        with BuildLine():
            CenterArc((FILLET2_R, -FILLET2_R), FILLET2_R, 90, 90)
            Line((0, -FILLET2_R), (-FILLET2_R * 0.02, -FILLET2_R))
            Line((-FILLET2_R * 0.02, -FILLET2_R), (-FILLET2_R * 0.02, FILLET2_R * 0.02))
            Line((-FILLET2_R * 0.02, FILLET2_R * 0.02), (FILLET2_R, FILLET2_R * 0.02))
            Line((FILLET2_R, FILLET2_R * 0.02), (FILLET2_R, 0))
        make_face()
    fillet2_piece_11b = extrude(amount=20, mode=Mode.PRIVATE)
    fillet2_piece_11b = split(fillet2_piece_11b, bisect_by=Plane(origin=(-8.868024429, 8.868024429, -7.5), z_dir=(0, 0, 1)), keep=Keep.TOP, mode=Mode.PRIVATE)
    fillet2_piece_11 = fillet2_piece_11a & fillet2_piece_11b
    add(fillet2_piece_11, mode=Mode.SUBTRACT)
    with BuildSketch(Plane(origin=(-10, 10, -7.5), x_dir=(0, -1, 0), z_dir=(0, 0, -1))) as fillet2_piece_12a_section:
        with BuildLine():
            CenterArc((FILLET2_R, -FILLET2_R), FILLET2_R, 90, 90)
            Line((0, -FILLET2_R), (-FILLET2_R * 0.02, -FILLET2_R))
            Line((-FILLET2_R * 0.02, -FILLET2_R), (-FILLET2_R * 0.02, FILLET2_R * 0.02))
            Line((-FILLET2_R * 0.02, FILLET2_R * 0.02), (FILLET2_R, FILLET2_R * 0.02))
            Line((FILLET2_R, FILLET2_R * 0.02), (FILLET2_R, 0))
        make_face()
    fillet2_piece_12a = extrude(amount=20, mode=Mode.PRIVATE)
    fillet2_piece_12a = split(fillet2_piece_12a, bisect_by=Plane(origin=(-8.868024429, 8.868024429, -15), z_dir=(0, 0, -1)), keep=Keep.TOP, mode=Mode.PRIVATE)
    with BuildSketch(Plane(origin=(-22.5, 10, -15), x_dir=(0, -1, 0), z_dir=(1, 0, 0))) as fillet2_piece_12b_section:
        with BuildLine():
            CenterArc((FILLET2_R, -FILLET2_R), FILLET2_R, 90, 90)
            Line((0, -FILLET2_R), (-FILLET2_R * 0.02, -FILLET2_R))
            Line((-FILLET2_R * 0.02, -FILLET2_R), (-FILLET2_R * 0.02, FILLET2_R * 0.02))
            Line((-FILLET2_R * 0.02, FILLET2_R * 0.02), (FILLET2_R, FILLET2_R * 0.02))
            Line((FILLET2_R, FILLET2_R * 0.02), (FILLET2_R, 0))
        make_face()
    fillet2_piece_12b = extrude(amount=32.5, mode=Mode.PRIVATE)
    fillet2_piece_12b = split(fillet2_piece_12b, bisect_by=Plane(origin=(-10, 8.868024429, -13.868024429), z_dir=(-1, 0, 0)), keep=Keep.TOP, mode=Mode.PRIVATE)
    fillet2_piece_12 = fillet2_piece_12a & fillet2_piece_12b
    add(fillet2_piece_12, mode=Mode.SUBTRACT)
    with BuildSketch(Plane(origin=(10, 10, -27.5), x_dir=(0, -1, 0), z_dir=(0, 0, 1))) as fillet2_piece_13a_section:
        with BuildLine():
            CenterArc((FILLET2_R, -FILLET2_R), FILLET2_R, 90, 90)
            Line((0, -FILLET2_R), (-FILLET2_R * 0.02, -FILLET2_R))
            Line((-FILLET2_R * 0.02, -FILLET2_R), (-FILLET2_R * 0.02, FILLET2_R * 0.02))
            Line((-FILLET2_R * 0.02, FILLET2_R * 0.02), (FILLET2_R, FILLET2_R * 0.02))
            Line((FILLET2_R, FILLET2_R * 0.02), (FILLET2_R, 0))
        make_face()
    fillet2_piece_13a = extrude(amount=20, mode=Mode.PRIVATE)
    fillet2_piece_13a = split(fillet2_piece_13a, bisect_by=Plane(origin=(8.868024429, 8.868024429, -15), z_dir=(0, 0, -1)), keep=Keep.TOP, mode=Mode.PRIVATE)
    with BuildSketch(Plane(origin=(-10, 10, -15), x_dir=(0, -1, 0), z_dir=(1, 0, 0))) as fillet2_piece_13b_section:
        with BuildLine():
            CenterArc((FILLET2_R, -FILLET2_R), FILLET2_R, 90, 90)
            Line((0, -FILLET2_R), (-FILLET2_R * 0.02, -FILLET2_R))
            Line((-FILLET2_R * 0.02, -FILLET2_R), (-FILLET2_R * 0.02, FILLET2_R * 0.02))
            Line((-FILLET2_R * 0.02, FILLET2_R * 0.02), (FILLET2_R, FILLET2_R * 0.02))
            Line((FILLET2_R, FILLET2_R * 0.02), (FILLET2_R, 0))
        make_face()
    fillet2_piece_13b = extrude(amount=32.5, mode=Mode.PRIVATE)
    fillet2_piece_13b = split(fillet2_piece_13b, bisect_by=Plane(origin=(10, 8.868024429, -13.868024429), z_dir=(1, 0, 0)), keep=Keep.TOP, mode=Mode.PRIVATE)
    fillet2_piece_13 = fillet2_piece_13a & fillet2_piece_13b
    add(fillet2_piece_13, mode=Mode.SUBTRACT)
    with BuildSketch(Plane(origin=(10, 10, -15), x_dir=(0, -1, 0), z_dir=(0, 0, 1))) as fillet2_piece_14a_section:
        with BuildLine():
            CenterArc((FILLET2_R, -FILLET2_R), FILLET2_R, 90, 90)
            Line((0, -FILLET2_R), (-FILLET2_R * 0.02, -FILLET2_R))
            Line((-FILLET2_R * 0.02, -FILLET2_R), (-FILLET2_R * 0.02, FILLET2_R * 0.02))
            Line((-FILLET2_R * 0.02, FILLET2_R * 0.02), (FILLET2_R, FILLET2_R * 0.02))
            Line((FILLET2_R, FILLET2_R * 0.02), (FILLET2_R, 0))
        make_face()
    fillet2_piece_14a = extrude(amount=20, mode=Mode.PRIVATE)
    fillet2_piece_14a = split(fillet2_piece_14a, bisect_by=Plane(origin=(8.868024429, 8.868024429, -7.5), z_dir=(0, 0, 1)), keep=Keep.TOP, mode=Mode.PRIVATE)
    with BuildSketch(Plane(origin=(10, 20, -7.5), x_dir=(0, 0, 1), z_dir=(0, -1, 0))) as fillet2_piece_14b_section:
        with BuildLine():
            CenterArc((FILLET2_R, FILLET2_R), FILLET2_R, 180, 90)
            Line((0, FILLET2_R), (-FILLET2_R * 0.02, FILLET2_R))
            Line((-FILLET2_R * 0.02, FILLET2_R), (-FILLET2_R * 0.02, -FILLET2_R * 0.02))
            Line((-FILLET2_R * 0.02, -FILLET2_R * 0.02), (FILLET2_R, -FILLET2_R * 0.02))
            Line((FILLET2_R, -FILLET2_R * 0.02), (FILLET2_R, 0))
        make_face()
    fillet2_piece_14b = extrude(amount=22.5, mode=Mode.PRIVATE)
    fillet2_piece_14b = split(fillet2_piece_14b, bisect_by=Plane(origin=(8.868024429, 10, -6.368024429), z_dir=(0, -1, 0)), keep=Keep.TOP, mode=Mode.PRIVATE)
    fillet2_piece_14 = fillet2_piece_14a & fillet2_piece_14b
    add(fillet2_piece_14, mode=Mode.SUBTRACT)


solid = part.part
